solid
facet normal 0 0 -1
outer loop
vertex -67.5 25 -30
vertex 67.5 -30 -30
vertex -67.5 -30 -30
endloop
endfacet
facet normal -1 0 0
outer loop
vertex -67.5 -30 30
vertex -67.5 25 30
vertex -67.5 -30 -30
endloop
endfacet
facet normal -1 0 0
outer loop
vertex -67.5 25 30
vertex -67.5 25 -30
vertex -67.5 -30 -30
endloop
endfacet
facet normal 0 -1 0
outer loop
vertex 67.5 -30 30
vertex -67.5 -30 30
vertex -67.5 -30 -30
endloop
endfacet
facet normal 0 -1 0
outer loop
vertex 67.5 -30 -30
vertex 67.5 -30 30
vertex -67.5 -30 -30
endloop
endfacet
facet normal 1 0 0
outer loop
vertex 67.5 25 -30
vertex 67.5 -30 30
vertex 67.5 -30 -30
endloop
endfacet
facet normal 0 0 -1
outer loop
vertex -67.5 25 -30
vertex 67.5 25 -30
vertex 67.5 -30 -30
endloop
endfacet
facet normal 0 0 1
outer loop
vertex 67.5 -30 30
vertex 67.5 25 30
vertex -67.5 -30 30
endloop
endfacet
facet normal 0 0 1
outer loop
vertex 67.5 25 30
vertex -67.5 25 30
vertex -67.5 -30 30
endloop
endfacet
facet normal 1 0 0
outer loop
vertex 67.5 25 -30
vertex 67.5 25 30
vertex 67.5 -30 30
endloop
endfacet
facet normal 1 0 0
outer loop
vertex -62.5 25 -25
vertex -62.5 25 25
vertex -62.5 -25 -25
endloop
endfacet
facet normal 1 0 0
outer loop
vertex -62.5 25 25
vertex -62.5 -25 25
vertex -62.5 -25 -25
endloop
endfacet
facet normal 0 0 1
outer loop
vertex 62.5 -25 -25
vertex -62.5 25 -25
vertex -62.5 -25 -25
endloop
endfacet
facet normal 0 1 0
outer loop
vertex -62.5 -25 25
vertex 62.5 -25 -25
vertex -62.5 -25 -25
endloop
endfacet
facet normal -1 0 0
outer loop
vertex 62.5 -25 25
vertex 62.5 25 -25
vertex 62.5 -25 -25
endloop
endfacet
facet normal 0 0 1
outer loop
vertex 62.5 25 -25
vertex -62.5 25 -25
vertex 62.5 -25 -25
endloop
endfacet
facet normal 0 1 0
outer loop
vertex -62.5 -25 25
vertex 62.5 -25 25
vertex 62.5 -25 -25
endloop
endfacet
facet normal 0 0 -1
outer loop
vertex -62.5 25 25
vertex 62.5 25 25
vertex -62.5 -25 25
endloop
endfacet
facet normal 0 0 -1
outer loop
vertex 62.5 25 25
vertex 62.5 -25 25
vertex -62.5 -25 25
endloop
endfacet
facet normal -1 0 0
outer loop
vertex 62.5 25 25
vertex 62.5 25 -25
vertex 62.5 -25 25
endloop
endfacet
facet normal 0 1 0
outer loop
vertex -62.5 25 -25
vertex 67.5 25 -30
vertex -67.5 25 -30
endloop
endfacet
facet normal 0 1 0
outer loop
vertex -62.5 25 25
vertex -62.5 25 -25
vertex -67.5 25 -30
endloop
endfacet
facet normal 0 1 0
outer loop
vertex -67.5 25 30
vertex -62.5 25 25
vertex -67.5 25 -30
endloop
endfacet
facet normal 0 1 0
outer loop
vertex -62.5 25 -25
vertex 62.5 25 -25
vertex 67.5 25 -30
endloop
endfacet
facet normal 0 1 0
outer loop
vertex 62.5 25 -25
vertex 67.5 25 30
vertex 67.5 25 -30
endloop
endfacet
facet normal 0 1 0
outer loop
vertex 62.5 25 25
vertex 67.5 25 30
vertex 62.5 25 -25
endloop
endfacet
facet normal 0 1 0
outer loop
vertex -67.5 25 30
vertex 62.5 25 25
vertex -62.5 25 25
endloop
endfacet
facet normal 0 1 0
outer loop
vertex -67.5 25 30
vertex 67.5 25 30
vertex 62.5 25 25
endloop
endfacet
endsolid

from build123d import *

# Parameters (mm, degrees)
SKETCH8_W           = 135
SKETCH8_H           = 60
SKETCH8_W_2         = 125
SKETCH8_H_2         = 50
BOSS_EXTRUDE1_DEPTH = 25
SKETCH9_W           = 60
SKETCH9_H           = 5
BOSS_EXTRUDE2_DEPTH = 135


with BuildPart() as part:
    # Sketch8 → Boss-Extrude1 (new, symmetric)
    with BuildSketch(Plane(origin=(0, 0, 0), x_dir=(1, 0, 0), z_dir=(0, 1, 0))):
        Rectangle(SKETCH8_W, SKETCH8_H)
        Rectangle(SKETCH8_W_2, SKETCH8_H_2, mode=Mode.SUBTRACT)
    extrude(amount=BOSS_EXTRUDE1_DEPTH, both=True)

    # Sketch9 → Boss-Extrude2 (add)
    with BuildSketch(Plane.ZY.offset(67.5)):
        with Locations((0, -27.5)):
            Rectangle(SKETCH9_W, SKETCH9_H)
    extrude(amount=-BOSS_EXTRUDE2_DEPTH)


solid = part.part
